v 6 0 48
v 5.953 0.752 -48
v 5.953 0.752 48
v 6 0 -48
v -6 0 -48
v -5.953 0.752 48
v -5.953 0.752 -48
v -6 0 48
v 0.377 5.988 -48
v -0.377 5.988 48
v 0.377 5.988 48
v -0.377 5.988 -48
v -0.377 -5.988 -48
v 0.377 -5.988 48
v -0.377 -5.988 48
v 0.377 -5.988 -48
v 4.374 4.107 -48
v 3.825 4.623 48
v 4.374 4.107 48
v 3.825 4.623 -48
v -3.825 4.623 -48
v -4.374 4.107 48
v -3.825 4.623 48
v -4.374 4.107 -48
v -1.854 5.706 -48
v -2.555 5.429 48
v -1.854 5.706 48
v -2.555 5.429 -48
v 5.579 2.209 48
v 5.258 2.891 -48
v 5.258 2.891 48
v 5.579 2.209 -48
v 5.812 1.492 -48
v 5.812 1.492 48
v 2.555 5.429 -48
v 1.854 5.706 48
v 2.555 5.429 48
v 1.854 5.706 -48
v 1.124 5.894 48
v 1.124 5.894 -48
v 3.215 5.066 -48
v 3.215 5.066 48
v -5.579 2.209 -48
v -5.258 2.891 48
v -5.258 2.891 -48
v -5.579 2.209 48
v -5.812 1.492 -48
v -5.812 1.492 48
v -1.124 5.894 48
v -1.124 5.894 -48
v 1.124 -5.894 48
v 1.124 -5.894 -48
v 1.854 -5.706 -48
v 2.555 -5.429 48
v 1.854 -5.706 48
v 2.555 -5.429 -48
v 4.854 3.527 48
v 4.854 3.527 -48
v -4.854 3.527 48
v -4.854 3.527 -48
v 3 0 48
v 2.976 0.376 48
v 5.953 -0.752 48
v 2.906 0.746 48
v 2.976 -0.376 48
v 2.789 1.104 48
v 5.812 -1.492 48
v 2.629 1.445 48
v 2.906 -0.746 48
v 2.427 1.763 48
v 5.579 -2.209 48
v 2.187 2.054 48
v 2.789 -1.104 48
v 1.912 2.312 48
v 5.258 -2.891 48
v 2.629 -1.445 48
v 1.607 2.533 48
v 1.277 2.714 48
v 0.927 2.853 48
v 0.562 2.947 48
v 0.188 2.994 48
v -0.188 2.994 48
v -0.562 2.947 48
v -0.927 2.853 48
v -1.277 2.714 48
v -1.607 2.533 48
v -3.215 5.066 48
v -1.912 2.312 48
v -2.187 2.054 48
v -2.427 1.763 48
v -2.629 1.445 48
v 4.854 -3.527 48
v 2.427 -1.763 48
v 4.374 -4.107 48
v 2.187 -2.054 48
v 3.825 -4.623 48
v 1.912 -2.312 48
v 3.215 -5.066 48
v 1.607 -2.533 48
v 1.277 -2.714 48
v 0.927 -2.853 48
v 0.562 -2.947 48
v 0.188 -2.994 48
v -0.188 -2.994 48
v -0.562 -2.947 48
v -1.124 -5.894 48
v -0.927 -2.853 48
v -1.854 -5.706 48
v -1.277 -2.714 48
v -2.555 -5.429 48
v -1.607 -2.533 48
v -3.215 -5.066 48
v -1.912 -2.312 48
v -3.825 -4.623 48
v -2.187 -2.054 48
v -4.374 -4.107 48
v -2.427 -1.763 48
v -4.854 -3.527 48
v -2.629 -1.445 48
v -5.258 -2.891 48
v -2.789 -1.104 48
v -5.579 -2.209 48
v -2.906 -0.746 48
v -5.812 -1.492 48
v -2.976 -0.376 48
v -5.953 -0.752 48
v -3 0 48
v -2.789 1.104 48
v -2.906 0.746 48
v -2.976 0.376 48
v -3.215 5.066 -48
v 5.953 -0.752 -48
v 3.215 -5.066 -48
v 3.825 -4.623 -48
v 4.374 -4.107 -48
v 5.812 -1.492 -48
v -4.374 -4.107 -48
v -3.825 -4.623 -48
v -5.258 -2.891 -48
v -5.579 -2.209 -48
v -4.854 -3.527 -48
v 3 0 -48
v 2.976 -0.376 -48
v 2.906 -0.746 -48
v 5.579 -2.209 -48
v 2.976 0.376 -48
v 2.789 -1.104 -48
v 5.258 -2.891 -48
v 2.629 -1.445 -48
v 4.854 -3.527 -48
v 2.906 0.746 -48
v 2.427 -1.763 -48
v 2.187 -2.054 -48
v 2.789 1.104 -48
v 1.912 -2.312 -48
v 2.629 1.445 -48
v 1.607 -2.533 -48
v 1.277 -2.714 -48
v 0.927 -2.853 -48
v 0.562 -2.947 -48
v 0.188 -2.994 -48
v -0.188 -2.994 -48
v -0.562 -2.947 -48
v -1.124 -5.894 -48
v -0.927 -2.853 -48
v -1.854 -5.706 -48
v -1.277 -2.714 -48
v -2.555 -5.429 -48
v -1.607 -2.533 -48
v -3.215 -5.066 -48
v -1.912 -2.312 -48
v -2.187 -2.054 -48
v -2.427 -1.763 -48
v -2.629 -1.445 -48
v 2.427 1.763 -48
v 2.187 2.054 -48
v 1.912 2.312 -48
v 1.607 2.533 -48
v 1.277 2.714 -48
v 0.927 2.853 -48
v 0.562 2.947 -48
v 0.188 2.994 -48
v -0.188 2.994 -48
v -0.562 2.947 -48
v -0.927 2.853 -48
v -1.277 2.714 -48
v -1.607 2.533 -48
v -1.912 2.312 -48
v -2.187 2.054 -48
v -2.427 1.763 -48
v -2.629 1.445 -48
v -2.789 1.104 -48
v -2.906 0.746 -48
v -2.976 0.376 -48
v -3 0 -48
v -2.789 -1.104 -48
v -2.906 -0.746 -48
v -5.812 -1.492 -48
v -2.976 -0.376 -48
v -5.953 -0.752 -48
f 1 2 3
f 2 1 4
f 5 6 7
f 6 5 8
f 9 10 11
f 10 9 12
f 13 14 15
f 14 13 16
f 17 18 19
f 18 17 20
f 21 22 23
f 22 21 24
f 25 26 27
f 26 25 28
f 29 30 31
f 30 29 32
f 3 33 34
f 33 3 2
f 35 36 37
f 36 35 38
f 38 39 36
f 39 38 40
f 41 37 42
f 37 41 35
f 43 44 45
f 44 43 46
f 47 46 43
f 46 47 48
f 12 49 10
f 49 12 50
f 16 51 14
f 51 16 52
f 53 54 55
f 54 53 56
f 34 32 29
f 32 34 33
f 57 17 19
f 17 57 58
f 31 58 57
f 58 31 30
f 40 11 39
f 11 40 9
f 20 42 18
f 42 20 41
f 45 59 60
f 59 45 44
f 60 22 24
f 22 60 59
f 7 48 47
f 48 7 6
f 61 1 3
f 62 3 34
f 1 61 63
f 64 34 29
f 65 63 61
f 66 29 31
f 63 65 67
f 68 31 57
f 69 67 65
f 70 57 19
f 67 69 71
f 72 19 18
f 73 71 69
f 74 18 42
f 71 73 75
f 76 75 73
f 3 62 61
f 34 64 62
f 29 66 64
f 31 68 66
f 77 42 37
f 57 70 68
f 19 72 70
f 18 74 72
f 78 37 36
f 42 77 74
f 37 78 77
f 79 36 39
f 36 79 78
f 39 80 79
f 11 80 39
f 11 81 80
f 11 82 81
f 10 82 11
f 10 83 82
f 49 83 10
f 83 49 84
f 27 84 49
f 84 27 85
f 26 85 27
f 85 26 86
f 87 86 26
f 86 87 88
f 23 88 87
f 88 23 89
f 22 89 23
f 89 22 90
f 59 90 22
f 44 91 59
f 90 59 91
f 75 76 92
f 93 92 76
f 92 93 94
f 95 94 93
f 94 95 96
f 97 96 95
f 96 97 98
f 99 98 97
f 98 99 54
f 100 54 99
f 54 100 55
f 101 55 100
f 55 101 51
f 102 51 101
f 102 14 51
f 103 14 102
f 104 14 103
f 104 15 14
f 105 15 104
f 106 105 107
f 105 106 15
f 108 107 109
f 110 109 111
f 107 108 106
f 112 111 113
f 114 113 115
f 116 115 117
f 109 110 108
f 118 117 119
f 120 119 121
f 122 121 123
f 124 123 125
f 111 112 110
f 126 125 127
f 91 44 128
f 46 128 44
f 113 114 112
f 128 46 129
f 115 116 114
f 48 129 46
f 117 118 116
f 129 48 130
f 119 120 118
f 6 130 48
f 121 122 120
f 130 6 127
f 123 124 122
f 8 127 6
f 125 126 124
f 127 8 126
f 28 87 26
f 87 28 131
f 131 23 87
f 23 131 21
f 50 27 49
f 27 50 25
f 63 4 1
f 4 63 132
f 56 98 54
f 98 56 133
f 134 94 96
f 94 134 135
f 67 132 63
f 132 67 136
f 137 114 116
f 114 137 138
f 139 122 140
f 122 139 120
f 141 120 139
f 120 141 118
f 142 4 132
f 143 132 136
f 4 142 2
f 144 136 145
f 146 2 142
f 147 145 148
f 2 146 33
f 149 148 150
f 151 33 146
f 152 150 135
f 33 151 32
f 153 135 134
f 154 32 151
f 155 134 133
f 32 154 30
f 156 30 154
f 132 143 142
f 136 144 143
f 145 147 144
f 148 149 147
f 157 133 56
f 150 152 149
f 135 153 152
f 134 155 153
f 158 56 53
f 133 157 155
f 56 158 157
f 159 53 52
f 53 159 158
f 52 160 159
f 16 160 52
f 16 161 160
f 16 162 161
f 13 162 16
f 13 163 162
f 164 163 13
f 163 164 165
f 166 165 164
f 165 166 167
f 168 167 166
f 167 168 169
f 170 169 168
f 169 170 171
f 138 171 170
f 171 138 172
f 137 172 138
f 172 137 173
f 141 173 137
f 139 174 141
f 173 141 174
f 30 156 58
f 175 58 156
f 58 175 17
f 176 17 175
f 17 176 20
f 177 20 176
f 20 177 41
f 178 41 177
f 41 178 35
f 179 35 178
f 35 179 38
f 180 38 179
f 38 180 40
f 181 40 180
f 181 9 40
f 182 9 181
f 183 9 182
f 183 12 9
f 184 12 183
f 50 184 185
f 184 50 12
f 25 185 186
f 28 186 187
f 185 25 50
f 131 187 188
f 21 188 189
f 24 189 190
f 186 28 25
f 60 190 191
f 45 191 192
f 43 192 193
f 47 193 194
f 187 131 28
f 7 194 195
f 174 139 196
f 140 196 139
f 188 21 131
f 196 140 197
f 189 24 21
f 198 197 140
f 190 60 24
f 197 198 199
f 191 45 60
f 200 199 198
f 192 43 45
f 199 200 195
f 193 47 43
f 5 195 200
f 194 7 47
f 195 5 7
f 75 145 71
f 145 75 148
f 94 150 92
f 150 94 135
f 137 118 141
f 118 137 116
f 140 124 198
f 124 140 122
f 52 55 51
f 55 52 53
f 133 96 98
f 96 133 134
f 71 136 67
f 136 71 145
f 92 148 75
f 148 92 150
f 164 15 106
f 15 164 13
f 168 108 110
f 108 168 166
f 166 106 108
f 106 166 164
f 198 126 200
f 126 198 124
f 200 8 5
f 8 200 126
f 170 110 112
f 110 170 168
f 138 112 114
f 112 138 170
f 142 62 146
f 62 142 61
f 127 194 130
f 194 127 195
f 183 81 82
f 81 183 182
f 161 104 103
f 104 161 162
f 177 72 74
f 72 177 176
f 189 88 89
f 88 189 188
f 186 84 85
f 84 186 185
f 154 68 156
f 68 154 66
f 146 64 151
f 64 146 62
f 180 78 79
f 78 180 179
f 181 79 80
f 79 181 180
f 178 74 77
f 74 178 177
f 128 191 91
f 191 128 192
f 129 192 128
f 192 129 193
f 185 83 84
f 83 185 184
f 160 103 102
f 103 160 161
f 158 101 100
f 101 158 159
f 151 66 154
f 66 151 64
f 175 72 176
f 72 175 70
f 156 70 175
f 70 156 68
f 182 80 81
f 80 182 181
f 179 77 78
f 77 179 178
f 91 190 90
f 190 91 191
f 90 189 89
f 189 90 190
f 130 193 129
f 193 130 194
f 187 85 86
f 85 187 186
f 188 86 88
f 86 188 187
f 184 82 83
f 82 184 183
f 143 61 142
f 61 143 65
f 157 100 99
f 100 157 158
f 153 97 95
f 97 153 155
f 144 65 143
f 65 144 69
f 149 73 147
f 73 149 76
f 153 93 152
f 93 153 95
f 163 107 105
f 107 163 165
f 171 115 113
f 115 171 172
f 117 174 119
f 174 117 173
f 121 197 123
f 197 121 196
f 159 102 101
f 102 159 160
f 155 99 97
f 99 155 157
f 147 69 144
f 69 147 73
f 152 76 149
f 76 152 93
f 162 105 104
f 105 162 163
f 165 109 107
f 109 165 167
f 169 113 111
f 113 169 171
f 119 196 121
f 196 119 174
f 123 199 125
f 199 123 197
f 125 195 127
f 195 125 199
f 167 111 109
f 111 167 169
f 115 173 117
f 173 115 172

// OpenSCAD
$fn = 50;


difference() {
	union() {
		translate(v = [0, 0, -48.0000000000]) {
			cylinder(h = 96, r = 6.0000000000);
		}
	}
	union() {
		translate(v = [0, 0, -100.0000000000]) {
			cylinder(h = 200, r = 3);
		}
	}
}
